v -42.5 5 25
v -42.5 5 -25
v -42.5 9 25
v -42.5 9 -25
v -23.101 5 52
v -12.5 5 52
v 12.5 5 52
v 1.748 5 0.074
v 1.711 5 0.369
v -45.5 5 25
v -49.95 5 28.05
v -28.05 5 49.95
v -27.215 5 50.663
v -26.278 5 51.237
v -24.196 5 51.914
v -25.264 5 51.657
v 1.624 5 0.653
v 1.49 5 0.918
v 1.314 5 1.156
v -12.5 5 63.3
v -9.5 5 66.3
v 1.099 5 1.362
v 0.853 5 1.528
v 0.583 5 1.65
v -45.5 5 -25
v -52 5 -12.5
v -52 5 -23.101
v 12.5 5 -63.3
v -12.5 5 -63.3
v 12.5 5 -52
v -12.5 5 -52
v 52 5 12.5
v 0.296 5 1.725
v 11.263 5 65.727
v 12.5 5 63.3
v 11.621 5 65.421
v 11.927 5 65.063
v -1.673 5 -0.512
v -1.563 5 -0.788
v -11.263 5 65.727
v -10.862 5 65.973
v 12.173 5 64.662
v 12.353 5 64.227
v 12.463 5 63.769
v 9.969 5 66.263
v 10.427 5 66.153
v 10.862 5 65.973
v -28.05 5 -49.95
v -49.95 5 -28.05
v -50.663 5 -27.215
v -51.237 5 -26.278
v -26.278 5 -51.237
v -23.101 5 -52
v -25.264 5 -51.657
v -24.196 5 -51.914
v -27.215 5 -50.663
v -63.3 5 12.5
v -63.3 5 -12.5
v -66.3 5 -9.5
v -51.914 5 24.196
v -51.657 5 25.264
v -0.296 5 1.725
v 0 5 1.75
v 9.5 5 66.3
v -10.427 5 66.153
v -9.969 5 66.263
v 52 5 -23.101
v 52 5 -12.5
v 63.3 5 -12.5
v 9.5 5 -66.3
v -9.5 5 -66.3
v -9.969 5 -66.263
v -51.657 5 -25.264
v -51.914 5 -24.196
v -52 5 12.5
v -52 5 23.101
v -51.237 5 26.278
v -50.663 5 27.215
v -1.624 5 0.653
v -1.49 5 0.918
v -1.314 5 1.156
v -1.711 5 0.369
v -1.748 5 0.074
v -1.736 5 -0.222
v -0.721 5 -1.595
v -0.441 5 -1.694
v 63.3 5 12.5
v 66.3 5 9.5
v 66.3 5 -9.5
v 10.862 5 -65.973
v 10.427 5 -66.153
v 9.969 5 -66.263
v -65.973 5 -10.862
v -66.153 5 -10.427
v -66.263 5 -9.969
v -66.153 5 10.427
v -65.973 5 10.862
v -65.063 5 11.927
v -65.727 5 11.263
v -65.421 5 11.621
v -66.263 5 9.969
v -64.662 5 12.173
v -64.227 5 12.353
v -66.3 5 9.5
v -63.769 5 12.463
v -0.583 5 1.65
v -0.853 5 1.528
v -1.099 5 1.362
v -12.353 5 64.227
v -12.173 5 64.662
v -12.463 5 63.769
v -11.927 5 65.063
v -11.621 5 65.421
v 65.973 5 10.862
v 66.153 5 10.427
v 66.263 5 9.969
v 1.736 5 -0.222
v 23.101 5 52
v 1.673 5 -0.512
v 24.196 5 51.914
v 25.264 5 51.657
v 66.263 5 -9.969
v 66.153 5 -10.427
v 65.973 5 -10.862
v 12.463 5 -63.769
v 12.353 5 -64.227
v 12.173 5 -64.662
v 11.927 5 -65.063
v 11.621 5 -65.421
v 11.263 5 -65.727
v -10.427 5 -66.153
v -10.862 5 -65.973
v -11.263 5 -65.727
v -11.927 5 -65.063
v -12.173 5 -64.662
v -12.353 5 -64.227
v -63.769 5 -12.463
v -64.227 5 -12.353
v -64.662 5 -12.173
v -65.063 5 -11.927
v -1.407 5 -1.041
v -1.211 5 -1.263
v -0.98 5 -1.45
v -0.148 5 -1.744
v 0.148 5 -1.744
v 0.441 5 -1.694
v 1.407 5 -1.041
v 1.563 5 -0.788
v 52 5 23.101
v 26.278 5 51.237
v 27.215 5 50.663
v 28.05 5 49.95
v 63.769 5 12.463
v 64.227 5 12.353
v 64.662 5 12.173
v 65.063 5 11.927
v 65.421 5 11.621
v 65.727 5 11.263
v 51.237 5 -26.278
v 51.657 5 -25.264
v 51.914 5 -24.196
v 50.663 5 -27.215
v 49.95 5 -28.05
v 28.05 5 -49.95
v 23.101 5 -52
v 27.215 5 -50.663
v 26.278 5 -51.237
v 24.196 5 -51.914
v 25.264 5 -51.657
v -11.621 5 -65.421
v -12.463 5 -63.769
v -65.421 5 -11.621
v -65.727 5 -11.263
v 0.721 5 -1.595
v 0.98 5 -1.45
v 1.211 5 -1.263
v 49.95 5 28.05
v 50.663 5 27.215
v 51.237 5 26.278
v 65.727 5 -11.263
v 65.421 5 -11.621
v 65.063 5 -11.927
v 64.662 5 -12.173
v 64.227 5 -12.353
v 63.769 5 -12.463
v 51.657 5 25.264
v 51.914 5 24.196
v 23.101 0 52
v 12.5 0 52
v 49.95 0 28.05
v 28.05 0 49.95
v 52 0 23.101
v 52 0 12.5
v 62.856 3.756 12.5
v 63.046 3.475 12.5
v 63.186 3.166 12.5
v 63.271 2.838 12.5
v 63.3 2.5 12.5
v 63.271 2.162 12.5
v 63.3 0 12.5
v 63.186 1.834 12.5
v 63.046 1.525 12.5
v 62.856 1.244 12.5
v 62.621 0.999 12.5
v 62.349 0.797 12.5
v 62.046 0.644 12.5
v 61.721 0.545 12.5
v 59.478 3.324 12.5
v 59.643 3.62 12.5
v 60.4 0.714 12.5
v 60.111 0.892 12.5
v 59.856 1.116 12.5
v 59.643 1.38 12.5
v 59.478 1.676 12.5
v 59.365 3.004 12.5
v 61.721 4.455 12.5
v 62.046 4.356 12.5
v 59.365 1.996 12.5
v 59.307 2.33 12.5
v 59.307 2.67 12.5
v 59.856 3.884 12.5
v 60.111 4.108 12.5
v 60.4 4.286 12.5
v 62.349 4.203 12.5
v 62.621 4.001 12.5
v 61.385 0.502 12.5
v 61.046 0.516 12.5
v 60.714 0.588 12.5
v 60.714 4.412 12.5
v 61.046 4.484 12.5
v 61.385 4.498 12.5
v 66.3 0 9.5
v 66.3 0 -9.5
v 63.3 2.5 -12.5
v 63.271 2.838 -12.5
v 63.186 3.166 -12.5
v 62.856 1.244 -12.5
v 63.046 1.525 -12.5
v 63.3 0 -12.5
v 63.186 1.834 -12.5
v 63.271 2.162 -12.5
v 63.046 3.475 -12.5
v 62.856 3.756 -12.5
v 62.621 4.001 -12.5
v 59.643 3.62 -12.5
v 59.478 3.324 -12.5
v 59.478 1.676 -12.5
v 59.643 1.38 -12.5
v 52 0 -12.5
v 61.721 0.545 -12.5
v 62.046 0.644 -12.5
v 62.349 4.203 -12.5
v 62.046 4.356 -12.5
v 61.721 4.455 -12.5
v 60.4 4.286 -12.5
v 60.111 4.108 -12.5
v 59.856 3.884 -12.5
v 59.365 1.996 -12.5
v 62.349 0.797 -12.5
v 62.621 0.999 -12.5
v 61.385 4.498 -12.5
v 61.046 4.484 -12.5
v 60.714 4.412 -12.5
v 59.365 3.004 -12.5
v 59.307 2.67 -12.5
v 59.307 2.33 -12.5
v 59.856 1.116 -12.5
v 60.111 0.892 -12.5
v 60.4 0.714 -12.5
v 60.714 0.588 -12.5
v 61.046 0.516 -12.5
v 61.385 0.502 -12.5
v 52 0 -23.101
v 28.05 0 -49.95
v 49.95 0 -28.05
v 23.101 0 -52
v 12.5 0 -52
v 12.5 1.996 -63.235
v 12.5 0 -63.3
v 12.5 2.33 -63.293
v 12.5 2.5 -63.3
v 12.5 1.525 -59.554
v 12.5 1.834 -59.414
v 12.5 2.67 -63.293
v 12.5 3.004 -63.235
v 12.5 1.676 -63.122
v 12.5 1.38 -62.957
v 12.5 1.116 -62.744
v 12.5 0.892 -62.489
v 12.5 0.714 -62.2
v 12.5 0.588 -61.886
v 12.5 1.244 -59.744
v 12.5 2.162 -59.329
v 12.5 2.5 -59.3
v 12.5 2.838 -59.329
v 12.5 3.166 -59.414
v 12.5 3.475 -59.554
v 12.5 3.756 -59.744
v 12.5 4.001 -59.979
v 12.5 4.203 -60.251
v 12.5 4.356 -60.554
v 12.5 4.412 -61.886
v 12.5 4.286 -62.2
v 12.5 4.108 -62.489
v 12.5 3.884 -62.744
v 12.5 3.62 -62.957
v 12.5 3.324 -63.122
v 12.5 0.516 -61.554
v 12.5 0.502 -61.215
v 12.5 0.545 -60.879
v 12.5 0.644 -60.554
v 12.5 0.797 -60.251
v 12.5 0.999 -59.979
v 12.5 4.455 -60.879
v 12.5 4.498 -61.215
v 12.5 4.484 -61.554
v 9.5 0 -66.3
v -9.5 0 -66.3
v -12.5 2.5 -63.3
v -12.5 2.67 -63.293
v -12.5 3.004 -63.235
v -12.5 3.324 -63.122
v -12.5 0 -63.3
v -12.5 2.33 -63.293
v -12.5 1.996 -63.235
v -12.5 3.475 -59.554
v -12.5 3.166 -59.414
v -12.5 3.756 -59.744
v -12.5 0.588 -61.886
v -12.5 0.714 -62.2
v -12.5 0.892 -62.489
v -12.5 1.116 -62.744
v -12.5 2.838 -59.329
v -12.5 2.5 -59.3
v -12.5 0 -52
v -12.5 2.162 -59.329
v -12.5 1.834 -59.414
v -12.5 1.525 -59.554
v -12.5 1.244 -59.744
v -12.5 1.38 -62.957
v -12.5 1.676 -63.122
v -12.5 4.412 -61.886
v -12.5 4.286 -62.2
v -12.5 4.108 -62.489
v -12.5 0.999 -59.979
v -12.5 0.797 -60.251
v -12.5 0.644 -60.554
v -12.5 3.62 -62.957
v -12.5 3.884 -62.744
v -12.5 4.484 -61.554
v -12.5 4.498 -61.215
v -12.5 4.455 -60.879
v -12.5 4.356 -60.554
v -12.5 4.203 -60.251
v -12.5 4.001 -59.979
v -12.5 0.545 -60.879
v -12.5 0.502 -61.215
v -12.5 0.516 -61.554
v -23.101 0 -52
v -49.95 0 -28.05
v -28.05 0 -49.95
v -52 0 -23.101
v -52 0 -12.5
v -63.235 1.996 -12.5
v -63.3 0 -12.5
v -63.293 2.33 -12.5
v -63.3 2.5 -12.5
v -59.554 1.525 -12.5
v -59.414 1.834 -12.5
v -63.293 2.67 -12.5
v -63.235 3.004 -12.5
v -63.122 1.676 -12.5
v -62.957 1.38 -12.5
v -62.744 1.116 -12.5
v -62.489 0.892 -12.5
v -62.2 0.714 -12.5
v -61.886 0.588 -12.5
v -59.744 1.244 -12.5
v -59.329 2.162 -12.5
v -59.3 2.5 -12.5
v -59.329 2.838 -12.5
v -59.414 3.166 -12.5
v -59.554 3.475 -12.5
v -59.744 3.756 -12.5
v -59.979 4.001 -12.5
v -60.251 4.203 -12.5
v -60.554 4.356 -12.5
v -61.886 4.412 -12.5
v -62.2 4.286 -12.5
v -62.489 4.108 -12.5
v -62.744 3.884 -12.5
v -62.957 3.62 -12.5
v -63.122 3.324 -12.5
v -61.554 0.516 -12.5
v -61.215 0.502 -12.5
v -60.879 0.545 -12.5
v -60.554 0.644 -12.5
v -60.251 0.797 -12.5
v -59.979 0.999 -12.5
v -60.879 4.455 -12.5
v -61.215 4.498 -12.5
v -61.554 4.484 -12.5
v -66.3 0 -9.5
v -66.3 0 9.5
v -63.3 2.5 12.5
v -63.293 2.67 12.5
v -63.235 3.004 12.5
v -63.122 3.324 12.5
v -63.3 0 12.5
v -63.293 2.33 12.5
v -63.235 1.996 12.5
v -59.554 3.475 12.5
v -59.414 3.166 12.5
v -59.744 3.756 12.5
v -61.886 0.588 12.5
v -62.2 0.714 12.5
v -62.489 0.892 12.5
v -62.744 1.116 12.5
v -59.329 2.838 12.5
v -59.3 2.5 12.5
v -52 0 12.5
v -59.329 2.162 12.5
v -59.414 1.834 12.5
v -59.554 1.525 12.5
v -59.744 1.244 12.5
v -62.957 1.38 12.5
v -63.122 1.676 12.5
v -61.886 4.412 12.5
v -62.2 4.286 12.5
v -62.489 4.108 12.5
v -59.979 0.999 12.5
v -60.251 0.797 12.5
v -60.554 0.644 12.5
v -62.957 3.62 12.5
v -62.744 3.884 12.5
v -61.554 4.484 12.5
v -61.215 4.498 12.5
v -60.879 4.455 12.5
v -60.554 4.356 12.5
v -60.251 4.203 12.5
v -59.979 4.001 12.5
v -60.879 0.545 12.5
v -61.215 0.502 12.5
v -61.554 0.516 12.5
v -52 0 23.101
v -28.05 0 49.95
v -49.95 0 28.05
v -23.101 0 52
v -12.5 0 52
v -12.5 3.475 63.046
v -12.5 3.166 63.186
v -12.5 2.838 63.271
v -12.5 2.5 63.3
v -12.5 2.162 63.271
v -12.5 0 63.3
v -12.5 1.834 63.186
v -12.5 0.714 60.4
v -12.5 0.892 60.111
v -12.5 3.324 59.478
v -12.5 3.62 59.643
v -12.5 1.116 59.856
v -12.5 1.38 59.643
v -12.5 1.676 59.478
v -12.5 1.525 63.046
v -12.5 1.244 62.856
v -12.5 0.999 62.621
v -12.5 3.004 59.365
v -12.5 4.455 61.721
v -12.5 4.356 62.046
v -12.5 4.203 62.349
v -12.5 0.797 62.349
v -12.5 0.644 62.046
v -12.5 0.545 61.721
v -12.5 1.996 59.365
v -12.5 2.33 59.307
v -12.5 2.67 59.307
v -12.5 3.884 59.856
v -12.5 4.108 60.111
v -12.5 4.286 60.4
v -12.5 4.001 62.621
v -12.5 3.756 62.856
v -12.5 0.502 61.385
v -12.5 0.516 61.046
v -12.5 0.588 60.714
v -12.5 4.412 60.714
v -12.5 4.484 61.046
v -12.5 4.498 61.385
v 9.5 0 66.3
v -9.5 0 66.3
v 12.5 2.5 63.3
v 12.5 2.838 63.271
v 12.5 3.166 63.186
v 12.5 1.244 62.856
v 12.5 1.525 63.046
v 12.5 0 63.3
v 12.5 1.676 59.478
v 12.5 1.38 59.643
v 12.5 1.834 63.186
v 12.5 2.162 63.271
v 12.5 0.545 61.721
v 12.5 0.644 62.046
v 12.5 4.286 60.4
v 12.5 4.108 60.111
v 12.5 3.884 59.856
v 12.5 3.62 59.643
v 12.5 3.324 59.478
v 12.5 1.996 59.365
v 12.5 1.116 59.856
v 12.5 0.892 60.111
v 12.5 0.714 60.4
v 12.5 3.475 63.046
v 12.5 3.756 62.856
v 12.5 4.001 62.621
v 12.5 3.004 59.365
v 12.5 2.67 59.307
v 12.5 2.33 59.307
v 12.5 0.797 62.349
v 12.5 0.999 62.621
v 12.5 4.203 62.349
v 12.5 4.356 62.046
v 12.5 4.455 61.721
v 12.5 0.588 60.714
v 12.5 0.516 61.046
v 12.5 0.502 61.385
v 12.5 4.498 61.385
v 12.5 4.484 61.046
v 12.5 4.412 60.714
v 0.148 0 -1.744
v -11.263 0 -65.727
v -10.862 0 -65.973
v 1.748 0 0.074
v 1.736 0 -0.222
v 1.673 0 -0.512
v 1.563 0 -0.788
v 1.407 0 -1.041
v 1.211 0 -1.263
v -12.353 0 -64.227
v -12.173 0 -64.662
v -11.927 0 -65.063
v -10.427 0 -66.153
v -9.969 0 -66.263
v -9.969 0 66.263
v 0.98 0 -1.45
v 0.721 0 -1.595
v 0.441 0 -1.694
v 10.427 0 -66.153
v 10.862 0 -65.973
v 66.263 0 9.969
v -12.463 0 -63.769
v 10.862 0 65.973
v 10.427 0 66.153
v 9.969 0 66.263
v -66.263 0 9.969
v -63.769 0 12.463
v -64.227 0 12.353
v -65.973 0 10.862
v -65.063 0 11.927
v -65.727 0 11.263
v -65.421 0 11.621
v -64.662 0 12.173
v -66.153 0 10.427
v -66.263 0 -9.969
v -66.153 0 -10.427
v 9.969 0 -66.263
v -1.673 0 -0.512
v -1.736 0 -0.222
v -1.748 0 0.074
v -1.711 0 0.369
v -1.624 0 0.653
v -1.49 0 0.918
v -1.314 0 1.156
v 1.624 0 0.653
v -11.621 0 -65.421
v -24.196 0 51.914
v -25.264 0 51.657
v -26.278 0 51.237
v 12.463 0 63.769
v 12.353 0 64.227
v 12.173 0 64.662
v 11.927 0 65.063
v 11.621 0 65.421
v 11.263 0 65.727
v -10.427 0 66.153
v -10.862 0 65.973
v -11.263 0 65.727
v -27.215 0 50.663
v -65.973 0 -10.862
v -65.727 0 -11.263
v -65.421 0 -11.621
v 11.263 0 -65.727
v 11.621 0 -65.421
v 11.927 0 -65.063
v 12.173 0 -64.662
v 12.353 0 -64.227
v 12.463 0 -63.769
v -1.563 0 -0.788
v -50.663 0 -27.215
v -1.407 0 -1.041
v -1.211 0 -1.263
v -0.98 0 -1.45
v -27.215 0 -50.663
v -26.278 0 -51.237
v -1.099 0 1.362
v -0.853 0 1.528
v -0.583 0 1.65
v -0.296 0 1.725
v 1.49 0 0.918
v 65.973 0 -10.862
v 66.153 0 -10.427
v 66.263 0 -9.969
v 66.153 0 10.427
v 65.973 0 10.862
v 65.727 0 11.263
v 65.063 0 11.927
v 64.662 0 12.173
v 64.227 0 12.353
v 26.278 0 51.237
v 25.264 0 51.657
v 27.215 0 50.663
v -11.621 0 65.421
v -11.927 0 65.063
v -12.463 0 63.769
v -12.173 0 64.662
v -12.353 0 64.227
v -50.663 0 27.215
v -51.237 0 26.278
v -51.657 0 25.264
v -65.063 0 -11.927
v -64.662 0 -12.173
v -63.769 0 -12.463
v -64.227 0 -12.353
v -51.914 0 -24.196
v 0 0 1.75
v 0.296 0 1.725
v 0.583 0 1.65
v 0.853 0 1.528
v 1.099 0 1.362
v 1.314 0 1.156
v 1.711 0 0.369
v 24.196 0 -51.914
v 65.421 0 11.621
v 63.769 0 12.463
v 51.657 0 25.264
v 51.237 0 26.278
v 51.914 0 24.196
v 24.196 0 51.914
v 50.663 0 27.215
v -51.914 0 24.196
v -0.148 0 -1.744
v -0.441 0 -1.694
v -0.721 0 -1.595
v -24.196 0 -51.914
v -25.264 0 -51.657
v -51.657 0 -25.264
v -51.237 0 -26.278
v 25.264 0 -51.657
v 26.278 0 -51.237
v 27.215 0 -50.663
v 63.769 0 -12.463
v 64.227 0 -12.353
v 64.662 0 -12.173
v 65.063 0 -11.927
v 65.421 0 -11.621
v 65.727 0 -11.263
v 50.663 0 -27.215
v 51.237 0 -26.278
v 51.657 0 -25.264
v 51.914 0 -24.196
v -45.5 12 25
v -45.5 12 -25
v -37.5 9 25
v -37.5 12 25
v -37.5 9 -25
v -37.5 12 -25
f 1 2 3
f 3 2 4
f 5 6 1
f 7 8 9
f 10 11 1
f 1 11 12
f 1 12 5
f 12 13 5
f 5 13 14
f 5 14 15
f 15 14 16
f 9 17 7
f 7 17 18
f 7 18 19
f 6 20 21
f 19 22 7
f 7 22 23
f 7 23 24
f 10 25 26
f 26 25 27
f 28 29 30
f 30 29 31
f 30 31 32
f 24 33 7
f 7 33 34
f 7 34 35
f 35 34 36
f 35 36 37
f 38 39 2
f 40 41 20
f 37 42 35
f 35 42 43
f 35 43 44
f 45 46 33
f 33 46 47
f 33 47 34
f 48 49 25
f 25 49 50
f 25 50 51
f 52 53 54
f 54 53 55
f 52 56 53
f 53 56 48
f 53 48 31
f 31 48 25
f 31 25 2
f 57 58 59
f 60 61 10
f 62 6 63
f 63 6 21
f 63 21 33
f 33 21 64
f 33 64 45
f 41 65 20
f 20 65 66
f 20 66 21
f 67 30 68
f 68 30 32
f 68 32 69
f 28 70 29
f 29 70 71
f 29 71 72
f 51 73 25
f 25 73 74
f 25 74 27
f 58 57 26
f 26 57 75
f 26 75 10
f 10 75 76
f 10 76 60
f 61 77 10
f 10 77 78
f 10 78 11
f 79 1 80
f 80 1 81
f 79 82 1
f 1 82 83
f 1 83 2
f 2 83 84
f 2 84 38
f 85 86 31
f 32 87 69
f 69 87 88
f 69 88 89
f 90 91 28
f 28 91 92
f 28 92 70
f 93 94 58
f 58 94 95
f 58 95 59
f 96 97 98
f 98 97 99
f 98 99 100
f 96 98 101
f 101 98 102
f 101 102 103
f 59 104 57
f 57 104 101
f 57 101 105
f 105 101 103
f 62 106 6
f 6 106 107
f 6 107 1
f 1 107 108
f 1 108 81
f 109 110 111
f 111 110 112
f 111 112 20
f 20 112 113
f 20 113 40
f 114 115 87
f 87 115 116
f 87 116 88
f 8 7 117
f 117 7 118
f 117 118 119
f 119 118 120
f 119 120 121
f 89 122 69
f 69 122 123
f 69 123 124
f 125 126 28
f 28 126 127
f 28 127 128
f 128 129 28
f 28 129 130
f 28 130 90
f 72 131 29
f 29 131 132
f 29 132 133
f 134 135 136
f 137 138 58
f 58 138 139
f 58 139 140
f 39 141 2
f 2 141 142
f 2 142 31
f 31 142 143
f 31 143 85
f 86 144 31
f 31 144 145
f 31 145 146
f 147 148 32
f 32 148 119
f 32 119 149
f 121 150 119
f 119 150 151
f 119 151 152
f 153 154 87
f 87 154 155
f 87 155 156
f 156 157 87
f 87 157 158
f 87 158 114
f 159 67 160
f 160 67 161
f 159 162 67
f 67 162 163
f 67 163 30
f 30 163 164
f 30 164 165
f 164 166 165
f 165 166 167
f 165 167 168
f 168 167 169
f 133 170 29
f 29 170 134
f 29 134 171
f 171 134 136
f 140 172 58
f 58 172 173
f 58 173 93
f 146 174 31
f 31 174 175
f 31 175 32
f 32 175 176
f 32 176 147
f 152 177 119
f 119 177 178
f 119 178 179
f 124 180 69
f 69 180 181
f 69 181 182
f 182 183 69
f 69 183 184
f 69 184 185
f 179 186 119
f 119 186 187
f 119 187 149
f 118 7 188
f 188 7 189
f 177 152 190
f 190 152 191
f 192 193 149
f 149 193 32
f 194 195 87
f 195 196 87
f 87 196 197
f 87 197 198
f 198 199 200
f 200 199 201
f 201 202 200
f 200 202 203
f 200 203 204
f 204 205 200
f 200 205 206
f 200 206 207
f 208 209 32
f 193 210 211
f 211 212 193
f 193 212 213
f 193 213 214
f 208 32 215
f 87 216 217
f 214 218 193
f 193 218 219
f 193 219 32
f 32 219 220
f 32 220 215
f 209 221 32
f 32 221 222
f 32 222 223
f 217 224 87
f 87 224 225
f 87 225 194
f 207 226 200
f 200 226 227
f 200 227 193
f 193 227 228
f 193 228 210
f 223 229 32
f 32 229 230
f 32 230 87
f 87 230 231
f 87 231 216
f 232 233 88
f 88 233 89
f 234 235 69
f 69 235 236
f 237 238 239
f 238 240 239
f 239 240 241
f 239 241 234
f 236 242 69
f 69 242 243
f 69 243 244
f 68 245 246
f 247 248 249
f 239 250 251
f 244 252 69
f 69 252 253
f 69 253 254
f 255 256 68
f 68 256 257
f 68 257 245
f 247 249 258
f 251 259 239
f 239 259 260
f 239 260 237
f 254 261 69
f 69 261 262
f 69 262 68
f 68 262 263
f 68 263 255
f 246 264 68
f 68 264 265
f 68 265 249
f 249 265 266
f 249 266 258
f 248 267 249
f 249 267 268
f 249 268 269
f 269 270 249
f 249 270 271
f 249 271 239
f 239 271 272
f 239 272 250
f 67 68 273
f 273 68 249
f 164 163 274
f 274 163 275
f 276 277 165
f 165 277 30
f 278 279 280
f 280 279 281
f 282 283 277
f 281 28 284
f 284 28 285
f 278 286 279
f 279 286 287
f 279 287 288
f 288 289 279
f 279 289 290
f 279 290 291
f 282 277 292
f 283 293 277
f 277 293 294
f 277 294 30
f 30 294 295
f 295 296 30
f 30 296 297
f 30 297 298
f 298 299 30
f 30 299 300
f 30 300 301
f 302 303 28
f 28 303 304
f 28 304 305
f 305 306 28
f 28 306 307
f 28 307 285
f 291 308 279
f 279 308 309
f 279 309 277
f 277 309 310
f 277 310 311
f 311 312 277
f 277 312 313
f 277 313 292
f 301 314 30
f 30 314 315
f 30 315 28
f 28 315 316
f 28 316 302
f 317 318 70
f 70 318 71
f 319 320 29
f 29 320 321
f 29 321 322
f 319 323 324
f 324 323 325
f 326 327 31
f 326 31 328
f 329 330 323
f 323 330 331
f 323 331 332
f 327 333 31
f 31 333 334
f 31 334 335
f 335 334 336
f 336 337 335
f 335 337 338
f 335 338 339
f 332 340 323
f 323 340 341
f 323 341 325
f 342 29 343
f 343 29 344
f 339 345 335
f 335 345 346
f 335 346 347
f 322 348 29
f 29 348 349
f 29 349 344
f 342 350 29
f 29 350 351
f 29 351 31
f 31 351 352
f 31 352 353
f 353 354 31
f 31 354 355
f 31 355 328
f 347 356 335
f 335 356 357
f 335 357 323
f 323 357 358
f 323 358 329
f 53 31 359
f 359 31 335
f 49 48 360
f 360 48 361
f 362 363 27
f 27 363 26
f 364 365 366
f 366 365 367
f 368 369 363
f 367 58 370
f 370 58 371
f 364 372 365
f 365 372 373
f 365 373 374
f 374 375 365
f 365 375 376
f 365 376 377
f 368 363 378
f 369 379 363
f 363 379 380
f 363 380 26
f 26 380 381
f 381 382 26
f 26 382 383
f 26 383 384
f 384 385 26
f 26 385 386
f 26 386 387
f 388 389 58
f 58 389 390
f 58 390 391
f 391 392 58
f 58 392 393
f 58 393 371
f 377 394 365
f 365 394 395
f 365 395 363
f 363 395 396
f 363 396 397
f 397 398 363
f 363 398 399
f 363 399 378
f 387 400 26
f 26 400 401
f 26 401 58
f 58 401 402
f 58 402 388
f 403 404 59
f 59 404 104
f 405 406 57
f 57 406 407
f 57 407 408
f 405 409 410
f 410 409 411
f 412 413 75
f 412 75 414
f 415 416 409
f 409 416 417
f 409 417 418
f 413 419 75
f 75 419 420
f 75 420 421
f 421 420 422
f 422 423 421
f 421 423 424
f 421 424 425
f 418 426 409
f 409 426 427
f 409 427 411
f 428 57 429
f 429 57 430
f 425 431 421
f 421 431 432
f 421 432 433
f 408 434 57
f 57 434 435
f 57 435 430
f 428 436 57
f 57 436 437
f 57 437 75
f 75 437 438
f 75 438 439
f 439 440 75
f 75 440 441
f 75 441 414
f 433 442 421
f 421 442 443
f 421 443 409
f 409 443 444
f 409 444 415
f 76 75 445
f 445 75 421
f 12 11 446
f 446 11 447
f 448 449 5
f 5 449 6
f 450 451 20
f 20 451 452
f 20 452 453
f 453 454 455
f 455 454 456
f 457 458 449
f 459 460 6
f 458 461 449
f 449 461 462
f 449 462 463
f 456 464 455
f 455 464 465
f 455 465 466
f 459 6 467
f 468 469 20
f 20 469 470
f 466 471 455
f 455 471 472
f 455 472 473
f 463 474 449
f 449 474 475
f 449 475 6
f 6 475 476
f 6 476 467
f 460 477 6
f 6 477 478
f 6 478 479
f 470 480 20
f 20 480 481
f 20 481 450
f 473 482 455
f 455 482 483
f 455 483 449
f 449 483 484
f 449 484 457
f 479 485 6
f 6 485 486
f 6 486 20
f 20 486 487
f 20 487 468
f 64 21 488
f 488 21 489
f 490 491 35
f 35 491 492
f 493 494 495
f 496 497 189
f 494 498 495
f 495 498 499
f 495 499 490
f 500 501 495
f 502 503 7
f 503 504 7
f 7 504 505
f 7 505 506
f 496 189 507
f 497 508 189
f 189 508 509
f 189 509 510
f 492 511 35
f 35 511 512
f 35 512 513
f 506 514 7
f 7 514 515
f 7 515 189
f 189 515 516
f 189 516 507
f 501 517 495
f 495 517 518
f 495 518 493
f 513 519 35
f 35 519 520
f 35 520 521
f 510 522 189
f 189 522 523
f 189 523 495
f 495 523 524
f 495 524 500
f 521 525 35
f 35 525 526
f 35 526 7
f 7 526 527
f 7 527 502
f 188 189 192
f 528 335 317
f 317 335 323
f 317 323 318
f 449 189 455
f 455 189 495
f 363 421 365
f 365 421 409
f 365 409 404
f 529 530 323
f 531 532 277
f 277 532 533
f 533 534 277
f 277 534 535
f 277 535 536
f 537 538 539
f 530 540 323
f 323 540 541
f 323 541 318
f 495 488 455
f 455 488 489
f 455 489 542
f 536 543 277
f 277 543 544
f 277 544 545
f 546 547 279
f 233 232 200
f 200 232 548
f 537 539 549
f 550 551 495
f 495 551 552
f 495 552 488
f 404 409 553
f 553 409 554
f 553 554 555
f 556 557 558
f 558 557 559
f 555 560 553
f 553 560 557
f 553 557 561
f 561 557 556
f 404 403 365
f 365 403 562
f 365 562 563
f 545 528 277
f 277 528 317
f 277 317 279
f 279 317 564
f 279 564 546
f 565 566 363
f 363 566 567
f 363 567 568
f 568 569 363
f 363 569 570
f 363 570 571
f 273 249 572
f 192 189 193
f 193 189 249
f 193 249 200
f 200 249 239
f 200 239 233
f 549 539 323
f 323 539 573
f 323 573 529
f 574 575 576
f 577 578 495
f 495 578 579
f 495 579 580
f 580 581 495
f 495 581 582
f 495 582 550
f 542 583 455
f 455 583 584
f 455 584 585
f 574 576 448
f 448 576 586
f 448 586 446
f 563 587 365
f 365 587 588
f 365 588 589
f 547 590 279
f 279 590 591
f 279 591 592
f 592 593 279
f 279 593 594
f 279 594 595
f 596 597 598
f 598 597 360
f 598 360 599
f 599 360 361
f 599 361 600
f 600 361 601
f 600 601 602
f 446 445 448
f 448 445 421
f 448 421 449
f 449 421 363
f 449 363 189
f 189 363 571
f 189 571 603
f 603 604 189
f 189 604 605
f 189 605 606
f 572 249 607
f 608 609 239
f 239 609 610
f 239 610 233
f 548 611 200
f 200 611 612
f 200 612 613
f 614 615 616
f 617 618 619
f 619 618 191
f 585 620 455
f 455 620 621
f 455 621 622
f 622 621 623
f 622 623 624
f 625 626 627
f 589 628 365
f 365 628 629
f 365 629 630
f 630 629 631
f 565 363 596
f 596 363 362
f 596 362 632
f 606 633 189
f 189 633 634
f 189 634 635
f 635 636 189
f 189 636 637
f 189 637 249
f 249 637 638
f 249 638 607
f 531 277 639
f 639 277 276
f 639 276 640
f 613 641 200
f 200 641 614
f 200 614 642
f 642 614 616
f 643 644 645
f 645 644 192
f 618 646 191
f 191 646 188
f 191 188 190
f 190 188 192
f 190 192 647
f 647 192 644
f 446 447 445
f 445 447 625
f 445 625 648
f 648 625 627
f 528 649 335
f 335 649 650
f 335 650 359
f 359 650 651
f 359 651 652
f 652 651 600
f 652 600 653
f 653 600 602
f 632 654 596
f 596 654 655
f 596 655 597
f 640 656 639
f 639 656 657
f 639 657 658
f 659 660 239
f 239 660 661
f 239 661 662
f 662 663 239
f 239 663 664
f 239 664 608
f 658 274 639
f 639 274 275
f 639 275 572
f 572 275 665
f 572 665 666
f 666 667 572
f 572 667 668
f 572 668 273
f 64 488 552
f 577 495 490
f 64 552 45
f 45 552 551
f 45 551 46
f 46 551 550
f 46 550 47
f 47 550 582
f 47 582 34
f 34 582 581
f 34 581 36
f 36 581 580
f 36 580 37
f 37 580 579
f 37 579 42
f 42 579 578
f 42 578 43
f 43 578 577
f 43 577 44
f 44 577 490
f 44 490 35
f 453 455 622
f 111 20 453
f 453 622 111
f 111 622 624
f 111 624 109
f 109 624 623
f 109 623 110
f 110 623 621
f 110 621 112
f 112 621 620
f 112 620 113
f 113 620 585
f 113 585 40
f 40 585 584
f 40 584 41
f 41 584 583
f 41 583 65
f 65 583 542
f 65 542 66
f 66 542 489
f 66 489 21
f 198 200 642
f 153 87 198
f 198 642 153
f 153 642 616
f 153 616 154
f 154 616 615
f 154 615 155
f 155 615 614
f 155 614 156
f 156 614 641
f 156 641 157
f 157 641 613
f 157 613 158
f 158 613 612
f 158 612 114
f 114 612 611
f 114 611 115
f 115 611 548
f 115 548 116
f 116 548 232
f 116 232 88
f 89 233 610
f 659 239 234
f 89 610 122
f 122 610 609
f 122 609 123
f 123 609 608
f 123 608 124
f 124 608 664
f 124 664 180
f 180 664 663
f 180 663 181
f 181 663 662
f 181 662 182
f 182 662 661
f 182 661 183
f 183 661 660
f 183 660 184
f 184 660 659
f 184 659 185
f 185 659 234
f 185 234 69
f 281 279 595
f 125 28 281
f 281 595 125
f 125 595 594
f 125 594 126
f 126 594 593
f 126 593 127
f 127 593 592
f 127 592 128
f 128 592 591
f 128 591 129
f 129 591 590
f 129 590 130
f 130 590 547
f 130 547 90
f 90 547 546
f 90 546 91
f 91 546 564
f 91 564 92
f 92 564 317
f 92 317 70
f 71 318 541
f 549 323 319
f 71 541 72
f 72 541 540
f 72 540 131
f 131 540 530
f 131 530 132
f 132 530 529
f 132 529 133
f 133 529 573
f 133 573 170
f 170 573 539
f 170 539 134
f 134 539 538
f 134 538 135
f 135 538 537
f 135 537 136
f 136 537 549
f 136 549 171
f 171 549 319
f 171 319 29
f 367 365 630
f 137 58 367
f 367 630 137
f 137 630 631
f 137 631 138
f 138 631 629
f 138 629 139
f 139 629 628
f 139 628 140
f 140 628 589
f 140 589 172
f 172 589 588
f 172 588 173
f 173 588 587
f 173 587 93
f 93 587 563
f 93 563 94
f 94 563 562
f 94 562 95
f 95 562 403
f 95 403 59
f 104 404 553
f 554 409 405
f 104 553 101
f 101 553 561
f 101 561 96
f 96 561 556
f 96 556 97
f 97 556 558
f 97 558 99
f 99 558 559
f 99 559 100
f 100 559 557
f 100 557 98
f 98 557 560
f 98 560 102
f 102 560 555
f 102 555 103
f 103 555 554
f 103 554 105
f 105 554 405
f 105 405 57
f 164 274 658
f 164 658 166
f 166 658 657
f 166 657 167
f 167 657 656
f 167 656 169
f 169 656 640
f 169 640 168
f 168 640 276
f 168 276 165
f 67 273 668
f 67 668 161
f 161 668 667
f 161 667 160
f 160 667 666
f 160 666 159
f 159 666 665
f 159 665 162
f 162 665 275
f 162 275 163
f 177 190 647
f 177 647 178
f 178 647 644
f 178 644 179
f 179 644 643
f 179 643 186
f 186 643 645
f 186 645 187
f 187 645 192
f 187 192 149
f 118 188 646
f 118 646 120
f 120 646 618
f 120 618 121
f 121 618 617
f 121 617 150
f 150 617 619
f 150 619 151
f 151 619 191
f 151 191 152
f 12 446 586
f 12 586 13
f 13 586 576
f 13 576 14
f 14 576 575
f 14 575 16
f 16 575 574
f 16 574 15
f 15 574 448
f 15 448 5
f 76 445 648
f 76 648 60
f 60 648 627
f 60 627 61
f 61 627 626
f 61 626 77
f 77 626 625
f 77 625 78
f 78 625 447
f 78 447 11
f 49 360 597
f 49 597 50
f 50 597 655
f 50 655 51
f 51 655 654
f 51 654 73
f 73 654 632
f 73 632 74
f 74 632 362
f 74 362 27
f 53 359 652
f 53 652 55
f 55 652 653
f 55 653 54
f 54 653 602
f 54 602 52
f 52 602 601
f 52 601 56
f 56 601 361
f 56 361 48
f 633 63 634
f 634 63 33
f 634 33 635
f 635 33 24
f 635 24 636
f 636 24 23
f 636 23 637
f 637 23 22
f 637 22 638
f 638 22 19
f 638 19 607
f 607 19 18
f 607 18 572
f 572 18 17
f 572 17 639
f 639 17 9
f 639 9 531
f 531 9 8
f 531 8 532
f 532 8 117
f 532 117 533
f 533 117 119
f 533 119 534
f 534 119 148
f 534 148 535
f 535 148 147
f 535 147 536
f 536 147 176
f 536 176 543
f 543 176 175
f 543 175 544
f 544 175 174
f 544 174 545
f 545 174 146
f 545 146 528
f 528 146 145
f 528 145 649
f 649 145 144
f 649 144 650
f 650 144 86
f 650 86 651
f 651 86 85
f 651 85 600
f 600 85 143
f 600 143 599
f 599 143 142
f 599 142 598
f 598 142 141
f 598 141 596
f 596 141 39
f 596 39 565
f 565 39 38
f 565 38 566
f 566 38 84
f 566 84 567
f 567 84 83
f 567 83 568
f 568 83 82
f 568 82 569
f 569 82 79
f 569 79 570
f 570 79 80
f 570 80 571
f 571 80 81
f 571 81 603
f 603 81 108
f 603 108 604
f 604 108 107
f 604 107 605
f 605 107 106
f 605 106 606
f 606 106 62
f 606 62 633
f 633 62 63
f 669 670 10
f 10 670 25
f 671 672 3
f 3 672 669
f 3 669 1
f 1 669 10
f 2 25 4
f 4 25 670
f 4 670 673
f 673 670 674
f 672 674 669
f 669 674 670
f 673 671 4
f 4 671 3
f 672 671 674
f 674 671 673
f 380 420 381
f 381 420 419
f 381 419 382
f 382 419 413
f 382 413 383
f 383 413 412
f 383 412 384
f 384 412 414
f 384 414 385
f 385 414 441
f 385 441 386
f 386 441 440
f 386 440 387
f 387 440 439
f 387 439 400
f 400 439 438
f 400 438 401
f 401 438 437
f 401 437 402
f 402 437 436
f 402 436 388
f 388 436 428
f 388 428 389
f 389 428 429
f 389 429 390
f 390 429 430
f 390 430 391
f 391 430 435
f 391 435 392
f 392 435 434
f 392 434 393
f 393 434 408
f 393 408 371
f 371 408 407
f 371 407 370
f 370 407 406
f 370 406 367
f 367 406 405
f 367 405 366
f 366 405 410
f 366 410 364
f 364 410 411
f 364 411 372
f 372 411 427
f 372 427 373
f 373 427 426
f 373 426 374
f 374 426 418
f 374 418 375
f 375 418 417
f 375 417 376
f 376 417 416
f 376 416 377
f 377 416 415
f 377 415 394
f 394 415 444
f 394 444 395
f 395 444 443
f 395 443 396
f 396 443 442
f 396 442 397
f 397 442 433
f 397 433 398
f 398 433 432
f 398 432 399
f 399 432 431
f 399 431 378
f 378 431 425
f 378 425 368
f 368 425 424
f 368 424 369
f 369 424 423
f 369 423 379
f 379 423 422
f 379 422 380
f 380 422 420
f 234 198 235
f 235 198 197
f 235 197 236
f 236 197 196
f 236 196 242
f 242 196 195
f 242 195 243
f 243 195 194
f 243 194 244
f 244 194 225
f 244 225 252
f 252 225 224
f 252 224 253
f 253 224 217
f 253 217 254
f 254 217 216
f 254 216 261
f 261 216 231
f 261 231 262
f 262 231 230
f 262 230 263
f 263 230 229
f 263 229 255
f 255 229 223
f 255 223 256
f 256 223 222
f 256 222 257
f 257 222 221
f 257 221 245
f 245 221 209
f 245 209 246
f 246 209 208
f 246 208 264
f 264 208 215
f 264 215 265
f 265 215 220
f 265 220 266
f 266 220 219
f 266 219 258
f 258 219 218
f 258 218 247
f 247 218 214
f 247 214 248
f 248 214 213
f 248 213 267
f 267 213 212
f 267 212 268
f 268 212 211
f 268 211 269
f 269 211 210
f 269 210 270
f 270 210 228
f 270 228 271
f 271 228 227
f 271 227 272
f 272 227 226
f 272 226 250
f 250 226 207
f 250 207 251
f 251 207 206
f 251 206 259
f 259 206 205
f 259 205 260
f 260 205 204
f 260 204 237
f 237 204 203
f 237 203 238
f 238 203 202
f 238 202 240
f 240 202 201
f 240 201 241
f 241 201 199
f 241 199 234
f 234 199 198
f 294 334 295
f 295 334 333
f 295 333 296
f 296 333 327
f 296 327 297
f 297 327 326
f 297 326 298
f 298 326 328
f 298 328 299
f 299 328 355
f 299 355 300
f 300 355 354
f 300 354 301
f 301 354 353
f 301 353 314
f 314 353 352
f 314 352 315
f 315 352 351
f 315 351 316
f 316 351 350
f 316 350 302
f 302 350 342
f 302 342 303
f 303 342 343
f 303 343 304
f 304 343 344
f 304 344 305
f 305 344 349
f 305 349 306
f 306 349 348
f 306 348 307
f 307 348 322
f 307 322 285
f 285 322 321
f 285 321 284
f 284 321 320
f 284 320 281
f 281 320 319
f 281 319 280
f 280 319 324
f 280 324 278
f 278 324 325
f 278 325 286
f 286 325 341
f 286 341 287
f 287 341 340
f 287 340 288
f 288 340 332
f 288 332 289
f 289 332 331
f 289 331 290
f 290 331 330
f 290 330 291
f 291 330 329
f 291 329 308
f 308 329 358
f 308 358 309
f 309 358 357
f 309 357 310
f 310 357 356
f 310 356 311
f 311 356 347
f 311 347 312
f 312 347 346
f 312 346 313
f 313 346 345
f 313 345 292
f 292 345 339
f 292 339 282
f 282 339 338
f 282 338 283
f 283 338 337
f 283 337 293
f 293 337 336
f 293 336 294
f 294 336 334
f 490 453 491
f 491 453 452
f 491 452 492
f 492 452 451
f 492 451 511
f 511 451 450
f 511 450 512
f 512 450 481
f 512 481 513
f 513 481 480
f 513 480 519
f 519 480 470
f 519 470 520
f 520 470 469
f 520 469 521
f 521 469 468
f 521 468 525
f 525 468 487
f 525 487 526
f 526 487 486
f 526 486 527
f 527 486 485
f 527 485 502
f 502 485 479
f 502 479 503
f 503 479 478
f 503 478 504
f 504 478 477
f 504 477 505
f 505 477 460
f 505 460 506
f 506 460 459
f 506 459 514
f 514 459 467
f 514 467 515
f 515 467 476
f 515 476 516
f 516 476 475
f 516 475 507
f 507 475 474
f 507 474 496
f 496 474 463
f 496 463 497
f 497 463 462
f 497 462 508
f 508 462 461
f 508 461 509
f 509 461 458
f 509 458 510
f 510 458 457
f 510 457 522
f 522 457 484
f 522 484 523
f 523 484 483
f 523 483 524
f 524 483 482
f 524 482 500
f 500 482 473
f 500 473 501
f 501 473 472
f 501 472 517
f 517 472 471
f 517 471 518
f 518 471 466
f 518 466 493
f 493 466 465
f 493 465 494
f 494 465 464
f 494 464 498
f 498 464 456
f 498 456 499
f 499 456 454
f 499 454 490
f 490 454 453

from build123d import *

# Parameters (mm, degrees)
SKETCH_1_W          = 14.3
SKETCH_1_H          = 25
SKETCH_1_W_2        = 25
SKETCH_1_H_2        = 14.3
EXTRUDE_1_DEPTH     = 5
FILLET_1_R          = 3
FILLET_2_R          = 7
FILLET_3_R          = 23
EXTRUDE_START       = -5
EXTRUDE_2_DEPTH     = 5
SKETCH_7_R          = 1.75
CUT_EXTRUDE_5_DEPTH = 94.895580301
SKETCH_9_W          = 3
SKETCH_9_H          = 50
EXTRUDE_3_DEPTH     = 7
SKETCH_10_W         = 50
SKETCH_10_H         = 3
EXTRUDE_4_DEPTH     = 5
SKETCH_11_R         = 2
CUT_EXTRUDE_6_DEPTH = 104.678011169
SKETCH_12_R         = 2
CUT_EXTRUDE_7_DEPTH = 104.678011169


with BuildPart() as part:
    # 스케치1 → 보스-돌출1 (new body)
    with BuildSketch(Plane(origin=(0, 0, 0), x_dir=(1, 0, 0), z_dir=(0, 1, 0))):
        Polygon((-26, 52), (-39, 39), (-26, 39), (26, 39), (39, 39), (26, 52), (12.5, 52), (-12.5, 52), align=None)
        Polygon((-26, 39), (-39, 39), (-39, 26), align=None)
        Polygon((-39, 26), (-39, 39), (-52, 26), (-52, 12.5), (-52, -12.5), (-52, -26), (-39, -39), (-39, -26), align=None)
        with Locations((-59.15, 0)):
            Rectangle(SKETCH_1_W, SKETCH_1_H)
        with Locations((0, 59.15)):
            Rectangle(SKETCH_1_W_2, SKETCH_1_H_2)
        Polygon((39, 39), (26, 39), (39, 26), align=None)
        Polygon((52, 26), (39, 39), (39, 26), (39, -26), (39, -39), (52, -26), (52, -12.5), (52, 12.5), align=None)
        with Locations((59.15, 0)):
            Rectangle(SKETCH_1_W, SKETCH_1_H)
        Polygon((39, -39), (39, -26), (26, -39), align=None)
        Polygon((-26, -39), (-39, -39), (-26, -52), (-12.5, -52), (12.5, -52), (26, -52), (39, -39), (26, -39), align=None)
        Polygon((-26, -39), (-39, -26), (-39, -39), align=None)
        with Locations((0, -59.15)):
            Rectangle(SKETCH_1_W_2, SKETCH_1_H_2)
    extrude(amount=EXTRUDE_1_DEPTH)

    # 필렛1
    fillet_1_edges = [part.edges().sort_by_distance(p)[0] for p in [
        (12.5, 2.5, 66.3),
        (-12.5, 2.5, 66.3),
        (-66.3, 2.5, 12.5),
        (-66.3, 2.5, -12.5),
        (-12.5, 2.5, -66.3),
        (12.5, 2.5, -66.3),
        (66.3, 2.5, -12.5),
        (66.3, 2.5, 12.5),
    ]]
    fillet(fillet_1_edges, radius=FILLET_1_R)

    # 필렛2
    fillet_2_edges = [part.edges().sort_by_distance(p)[0] for p in [
        (-26, 2.5, 52),
        (-52, 2.5, 26),
        (-52, 2.5, -26),
        (-26, 2.5, -52),
        (26, 2.5, -52),
        (52, 2.5, -26),
        (52, 2.5, 26),
        (26, 2.5, 52),
    ]]
    fillet(fillet_2_edges, radius=FILLET_2_R)

    # 필렛3
    # the kernel refuses this fillet: 23 mm, written as the material it adds along each edge
    with BuildSketch(Plane(origin=(-39, 0, 26), x_dir=(0, 0, -1), z_dir=(0, 1, 0))) as fillet_3_piece_1:
        with BuildLine():
            CenterArc((FILLET_3_R * 0.414213562373, -FILLET_3_R), FILLET_3_R, 90, 45)
            Line((-FILLET_3_R * 0.292893218813, -FILLET_3_R * 0.292893218813), (0, 0))
            Line((0, 0), (FILLET_3_R * 0.414213562373, 0))
        make_face()
    extrude(amount=5)
    with BuildSketch(Plane(origin=(-26, 0, 39), x_dir=(1, 0, 0), z_dir=(0, 1, 0)), Plane(origin=(26, 0, 39), x_dir=(0.7071067811865479, 0, -0.7071067811865471), z_dir=(0, 1, 0)), Plane(origin=(39, 0, 26), x_dir=(0, 0, -1), z_dir=(0, 1, 0)), Plane(origin=(39, 0, -26), x_dir=(-0.7071067811865476, 0, -0.7071067811865476), z_dir=(0, 1, 0)), Plane(origin=(26, 0, -39), x_dir=(-1, 0, 0), z_dir=(0, 1, 0)), Plane(origin=(-26, 0, -39), x_dir=(-0.7071067811865471, 0, 0.7071067811865479), z_dir=(0, 1, 0)), Plane(origin=(-39, 0, -26), x_dir=(0, 0, 1), z_dir=(0, 1, 0))) as fillet_3_piece_2:
        with BuildLine():
            CenterArc((FILLET_3_R * 0.414213562373, FILLET_3_R), FILLET_3_R, 225, 45)
            Line((-FILLET_3_R * 0.292893218813, FILLET_3_R * 0.292893218813), (0, 0))
            Line((0, 0), (FILLET_3_R * 0.414213562373, 0))
        make_face()
    extrude(amount=5)

    # 스케치6 → 보스-돌출2 (add)
    with BuildSketch(Plane(origin=(0, 5, 0), x_dir=(1, 0, 0), z_dir=(0, 1, 0)).offset(EXTRUDE_START)):
        with BuildLine():
            Line((16.473088065, 39), (-16.473088065, 39))
            ThreePointArc((-16.473088065, 39), (-25.120040329, 37.312677367), (-32.4982797, 32.4982797))
            ThreePointArc((-32.4982797, 32.4982797), (-37.312677367, 25.120040329), (-39, 16.473088065))
            Line((-39, 16.473088065), (-39, -16.473088065))
            ThreePointArc((-39, -16.473088065), (-37.312677367, -25.120040329), (-32.4982797, -32.4982797))
            ThreePointArc((-32.4982797, -32.4982797), (-25.120040329, -37.312677367), (-16.473088065, -39))
            Line((-16.473088065, -39), (16.473088065, -39))
            ThreePointArc((16.473088065, -39), (25.120040329, -37.312677367), (32.4982797, -32.4982797))
            ThreePointArc((32.4982797, -32.4982797), (37.312677367, -25.120040329), (39, -16.473088065))
            Line((39, -16.473088065), (39, 16.473088065))
            ThreePointArc((39, 16.473088065), (37.312677367, 25.120040329), (32.4982797, 32.4982797))
            ThreePointArc((32.4982797, 32.4982797), (25.120040329, 37.312677367), (16.473088065, 39))
        make_face()
    extrude(amount=EXTRUDE_2_DEPTH)

    # 스케치7 → 컷-돌출5 (cut, through all)
    with BuildSketch(Plane(origin=(0, 5, 0), x_dir=(1, 0, 0), z_dir=(0, 1, 0))):
        with Locations(Location((0, 0, 0), (0, 0, 270))):
            Circle(SKETCH_7_R)
    extrude(amount=-CUT_EXTRUDE_5_DEPTH, mode=Mode.SUBTRACT)

    # 스케치9 → 보스-돌출3 (add)
    with BuildSketch(Plane(origin=(0, 5, 0), x_dir=(1, 0, 0), z_dir=(0, 1, 0))):
        with Locations((-44, 0)):
            Rectangle(SKETCH_9_W, SKETCH_9_H)
    extrude(amount=EXTRUDE_3_DEPTH)

    # 스케치10 → 보스-돌출4 (add)
    with BuildSketch(Plane(origin=(-42.5, 0, 0), x_dir=(0, 0, -1), z_dir=(1, 0, 0))):
        with Locations((0, 10.5)):
            Rectangle(SKETCH_10_W, SKETCH_10_H)
    extrude(amount=EXTRUDE_4_DEPTH)

    # 스케치11 → 컷-돌출6 (cut, through all)
    with BuildSketch(Plane.XY.offset(12.5)):
        with Locations(Location((-61.3, 2.5, 0), (0, 0, 180))):
            Circle(SKETCH_11_R)
        with Locations((61.3, 2.5)):
            Circle(SKETCH_11_R)
    extrude(amount=-CUT_EXTRUDE_6_DEPTH, mode=Mode.SUBTRACT)

    # 스케치12 → 컷-돌출7 (cut, through all)
    with BuildSketch(Plane.ZY.offset(12.5)):
        with Locations(Location((-61.3, 2.5, 0), (0, 0, 180))):
            Circle(SKETCH_12_R)
        with Locations((61.3, 2.5)):
            Circle(SKETCH_12_R)
    extrude(amount=-CUT_EXTRUDE_7_DEPTH, mode=Mode.SUBTRACT)


solid = part.part
